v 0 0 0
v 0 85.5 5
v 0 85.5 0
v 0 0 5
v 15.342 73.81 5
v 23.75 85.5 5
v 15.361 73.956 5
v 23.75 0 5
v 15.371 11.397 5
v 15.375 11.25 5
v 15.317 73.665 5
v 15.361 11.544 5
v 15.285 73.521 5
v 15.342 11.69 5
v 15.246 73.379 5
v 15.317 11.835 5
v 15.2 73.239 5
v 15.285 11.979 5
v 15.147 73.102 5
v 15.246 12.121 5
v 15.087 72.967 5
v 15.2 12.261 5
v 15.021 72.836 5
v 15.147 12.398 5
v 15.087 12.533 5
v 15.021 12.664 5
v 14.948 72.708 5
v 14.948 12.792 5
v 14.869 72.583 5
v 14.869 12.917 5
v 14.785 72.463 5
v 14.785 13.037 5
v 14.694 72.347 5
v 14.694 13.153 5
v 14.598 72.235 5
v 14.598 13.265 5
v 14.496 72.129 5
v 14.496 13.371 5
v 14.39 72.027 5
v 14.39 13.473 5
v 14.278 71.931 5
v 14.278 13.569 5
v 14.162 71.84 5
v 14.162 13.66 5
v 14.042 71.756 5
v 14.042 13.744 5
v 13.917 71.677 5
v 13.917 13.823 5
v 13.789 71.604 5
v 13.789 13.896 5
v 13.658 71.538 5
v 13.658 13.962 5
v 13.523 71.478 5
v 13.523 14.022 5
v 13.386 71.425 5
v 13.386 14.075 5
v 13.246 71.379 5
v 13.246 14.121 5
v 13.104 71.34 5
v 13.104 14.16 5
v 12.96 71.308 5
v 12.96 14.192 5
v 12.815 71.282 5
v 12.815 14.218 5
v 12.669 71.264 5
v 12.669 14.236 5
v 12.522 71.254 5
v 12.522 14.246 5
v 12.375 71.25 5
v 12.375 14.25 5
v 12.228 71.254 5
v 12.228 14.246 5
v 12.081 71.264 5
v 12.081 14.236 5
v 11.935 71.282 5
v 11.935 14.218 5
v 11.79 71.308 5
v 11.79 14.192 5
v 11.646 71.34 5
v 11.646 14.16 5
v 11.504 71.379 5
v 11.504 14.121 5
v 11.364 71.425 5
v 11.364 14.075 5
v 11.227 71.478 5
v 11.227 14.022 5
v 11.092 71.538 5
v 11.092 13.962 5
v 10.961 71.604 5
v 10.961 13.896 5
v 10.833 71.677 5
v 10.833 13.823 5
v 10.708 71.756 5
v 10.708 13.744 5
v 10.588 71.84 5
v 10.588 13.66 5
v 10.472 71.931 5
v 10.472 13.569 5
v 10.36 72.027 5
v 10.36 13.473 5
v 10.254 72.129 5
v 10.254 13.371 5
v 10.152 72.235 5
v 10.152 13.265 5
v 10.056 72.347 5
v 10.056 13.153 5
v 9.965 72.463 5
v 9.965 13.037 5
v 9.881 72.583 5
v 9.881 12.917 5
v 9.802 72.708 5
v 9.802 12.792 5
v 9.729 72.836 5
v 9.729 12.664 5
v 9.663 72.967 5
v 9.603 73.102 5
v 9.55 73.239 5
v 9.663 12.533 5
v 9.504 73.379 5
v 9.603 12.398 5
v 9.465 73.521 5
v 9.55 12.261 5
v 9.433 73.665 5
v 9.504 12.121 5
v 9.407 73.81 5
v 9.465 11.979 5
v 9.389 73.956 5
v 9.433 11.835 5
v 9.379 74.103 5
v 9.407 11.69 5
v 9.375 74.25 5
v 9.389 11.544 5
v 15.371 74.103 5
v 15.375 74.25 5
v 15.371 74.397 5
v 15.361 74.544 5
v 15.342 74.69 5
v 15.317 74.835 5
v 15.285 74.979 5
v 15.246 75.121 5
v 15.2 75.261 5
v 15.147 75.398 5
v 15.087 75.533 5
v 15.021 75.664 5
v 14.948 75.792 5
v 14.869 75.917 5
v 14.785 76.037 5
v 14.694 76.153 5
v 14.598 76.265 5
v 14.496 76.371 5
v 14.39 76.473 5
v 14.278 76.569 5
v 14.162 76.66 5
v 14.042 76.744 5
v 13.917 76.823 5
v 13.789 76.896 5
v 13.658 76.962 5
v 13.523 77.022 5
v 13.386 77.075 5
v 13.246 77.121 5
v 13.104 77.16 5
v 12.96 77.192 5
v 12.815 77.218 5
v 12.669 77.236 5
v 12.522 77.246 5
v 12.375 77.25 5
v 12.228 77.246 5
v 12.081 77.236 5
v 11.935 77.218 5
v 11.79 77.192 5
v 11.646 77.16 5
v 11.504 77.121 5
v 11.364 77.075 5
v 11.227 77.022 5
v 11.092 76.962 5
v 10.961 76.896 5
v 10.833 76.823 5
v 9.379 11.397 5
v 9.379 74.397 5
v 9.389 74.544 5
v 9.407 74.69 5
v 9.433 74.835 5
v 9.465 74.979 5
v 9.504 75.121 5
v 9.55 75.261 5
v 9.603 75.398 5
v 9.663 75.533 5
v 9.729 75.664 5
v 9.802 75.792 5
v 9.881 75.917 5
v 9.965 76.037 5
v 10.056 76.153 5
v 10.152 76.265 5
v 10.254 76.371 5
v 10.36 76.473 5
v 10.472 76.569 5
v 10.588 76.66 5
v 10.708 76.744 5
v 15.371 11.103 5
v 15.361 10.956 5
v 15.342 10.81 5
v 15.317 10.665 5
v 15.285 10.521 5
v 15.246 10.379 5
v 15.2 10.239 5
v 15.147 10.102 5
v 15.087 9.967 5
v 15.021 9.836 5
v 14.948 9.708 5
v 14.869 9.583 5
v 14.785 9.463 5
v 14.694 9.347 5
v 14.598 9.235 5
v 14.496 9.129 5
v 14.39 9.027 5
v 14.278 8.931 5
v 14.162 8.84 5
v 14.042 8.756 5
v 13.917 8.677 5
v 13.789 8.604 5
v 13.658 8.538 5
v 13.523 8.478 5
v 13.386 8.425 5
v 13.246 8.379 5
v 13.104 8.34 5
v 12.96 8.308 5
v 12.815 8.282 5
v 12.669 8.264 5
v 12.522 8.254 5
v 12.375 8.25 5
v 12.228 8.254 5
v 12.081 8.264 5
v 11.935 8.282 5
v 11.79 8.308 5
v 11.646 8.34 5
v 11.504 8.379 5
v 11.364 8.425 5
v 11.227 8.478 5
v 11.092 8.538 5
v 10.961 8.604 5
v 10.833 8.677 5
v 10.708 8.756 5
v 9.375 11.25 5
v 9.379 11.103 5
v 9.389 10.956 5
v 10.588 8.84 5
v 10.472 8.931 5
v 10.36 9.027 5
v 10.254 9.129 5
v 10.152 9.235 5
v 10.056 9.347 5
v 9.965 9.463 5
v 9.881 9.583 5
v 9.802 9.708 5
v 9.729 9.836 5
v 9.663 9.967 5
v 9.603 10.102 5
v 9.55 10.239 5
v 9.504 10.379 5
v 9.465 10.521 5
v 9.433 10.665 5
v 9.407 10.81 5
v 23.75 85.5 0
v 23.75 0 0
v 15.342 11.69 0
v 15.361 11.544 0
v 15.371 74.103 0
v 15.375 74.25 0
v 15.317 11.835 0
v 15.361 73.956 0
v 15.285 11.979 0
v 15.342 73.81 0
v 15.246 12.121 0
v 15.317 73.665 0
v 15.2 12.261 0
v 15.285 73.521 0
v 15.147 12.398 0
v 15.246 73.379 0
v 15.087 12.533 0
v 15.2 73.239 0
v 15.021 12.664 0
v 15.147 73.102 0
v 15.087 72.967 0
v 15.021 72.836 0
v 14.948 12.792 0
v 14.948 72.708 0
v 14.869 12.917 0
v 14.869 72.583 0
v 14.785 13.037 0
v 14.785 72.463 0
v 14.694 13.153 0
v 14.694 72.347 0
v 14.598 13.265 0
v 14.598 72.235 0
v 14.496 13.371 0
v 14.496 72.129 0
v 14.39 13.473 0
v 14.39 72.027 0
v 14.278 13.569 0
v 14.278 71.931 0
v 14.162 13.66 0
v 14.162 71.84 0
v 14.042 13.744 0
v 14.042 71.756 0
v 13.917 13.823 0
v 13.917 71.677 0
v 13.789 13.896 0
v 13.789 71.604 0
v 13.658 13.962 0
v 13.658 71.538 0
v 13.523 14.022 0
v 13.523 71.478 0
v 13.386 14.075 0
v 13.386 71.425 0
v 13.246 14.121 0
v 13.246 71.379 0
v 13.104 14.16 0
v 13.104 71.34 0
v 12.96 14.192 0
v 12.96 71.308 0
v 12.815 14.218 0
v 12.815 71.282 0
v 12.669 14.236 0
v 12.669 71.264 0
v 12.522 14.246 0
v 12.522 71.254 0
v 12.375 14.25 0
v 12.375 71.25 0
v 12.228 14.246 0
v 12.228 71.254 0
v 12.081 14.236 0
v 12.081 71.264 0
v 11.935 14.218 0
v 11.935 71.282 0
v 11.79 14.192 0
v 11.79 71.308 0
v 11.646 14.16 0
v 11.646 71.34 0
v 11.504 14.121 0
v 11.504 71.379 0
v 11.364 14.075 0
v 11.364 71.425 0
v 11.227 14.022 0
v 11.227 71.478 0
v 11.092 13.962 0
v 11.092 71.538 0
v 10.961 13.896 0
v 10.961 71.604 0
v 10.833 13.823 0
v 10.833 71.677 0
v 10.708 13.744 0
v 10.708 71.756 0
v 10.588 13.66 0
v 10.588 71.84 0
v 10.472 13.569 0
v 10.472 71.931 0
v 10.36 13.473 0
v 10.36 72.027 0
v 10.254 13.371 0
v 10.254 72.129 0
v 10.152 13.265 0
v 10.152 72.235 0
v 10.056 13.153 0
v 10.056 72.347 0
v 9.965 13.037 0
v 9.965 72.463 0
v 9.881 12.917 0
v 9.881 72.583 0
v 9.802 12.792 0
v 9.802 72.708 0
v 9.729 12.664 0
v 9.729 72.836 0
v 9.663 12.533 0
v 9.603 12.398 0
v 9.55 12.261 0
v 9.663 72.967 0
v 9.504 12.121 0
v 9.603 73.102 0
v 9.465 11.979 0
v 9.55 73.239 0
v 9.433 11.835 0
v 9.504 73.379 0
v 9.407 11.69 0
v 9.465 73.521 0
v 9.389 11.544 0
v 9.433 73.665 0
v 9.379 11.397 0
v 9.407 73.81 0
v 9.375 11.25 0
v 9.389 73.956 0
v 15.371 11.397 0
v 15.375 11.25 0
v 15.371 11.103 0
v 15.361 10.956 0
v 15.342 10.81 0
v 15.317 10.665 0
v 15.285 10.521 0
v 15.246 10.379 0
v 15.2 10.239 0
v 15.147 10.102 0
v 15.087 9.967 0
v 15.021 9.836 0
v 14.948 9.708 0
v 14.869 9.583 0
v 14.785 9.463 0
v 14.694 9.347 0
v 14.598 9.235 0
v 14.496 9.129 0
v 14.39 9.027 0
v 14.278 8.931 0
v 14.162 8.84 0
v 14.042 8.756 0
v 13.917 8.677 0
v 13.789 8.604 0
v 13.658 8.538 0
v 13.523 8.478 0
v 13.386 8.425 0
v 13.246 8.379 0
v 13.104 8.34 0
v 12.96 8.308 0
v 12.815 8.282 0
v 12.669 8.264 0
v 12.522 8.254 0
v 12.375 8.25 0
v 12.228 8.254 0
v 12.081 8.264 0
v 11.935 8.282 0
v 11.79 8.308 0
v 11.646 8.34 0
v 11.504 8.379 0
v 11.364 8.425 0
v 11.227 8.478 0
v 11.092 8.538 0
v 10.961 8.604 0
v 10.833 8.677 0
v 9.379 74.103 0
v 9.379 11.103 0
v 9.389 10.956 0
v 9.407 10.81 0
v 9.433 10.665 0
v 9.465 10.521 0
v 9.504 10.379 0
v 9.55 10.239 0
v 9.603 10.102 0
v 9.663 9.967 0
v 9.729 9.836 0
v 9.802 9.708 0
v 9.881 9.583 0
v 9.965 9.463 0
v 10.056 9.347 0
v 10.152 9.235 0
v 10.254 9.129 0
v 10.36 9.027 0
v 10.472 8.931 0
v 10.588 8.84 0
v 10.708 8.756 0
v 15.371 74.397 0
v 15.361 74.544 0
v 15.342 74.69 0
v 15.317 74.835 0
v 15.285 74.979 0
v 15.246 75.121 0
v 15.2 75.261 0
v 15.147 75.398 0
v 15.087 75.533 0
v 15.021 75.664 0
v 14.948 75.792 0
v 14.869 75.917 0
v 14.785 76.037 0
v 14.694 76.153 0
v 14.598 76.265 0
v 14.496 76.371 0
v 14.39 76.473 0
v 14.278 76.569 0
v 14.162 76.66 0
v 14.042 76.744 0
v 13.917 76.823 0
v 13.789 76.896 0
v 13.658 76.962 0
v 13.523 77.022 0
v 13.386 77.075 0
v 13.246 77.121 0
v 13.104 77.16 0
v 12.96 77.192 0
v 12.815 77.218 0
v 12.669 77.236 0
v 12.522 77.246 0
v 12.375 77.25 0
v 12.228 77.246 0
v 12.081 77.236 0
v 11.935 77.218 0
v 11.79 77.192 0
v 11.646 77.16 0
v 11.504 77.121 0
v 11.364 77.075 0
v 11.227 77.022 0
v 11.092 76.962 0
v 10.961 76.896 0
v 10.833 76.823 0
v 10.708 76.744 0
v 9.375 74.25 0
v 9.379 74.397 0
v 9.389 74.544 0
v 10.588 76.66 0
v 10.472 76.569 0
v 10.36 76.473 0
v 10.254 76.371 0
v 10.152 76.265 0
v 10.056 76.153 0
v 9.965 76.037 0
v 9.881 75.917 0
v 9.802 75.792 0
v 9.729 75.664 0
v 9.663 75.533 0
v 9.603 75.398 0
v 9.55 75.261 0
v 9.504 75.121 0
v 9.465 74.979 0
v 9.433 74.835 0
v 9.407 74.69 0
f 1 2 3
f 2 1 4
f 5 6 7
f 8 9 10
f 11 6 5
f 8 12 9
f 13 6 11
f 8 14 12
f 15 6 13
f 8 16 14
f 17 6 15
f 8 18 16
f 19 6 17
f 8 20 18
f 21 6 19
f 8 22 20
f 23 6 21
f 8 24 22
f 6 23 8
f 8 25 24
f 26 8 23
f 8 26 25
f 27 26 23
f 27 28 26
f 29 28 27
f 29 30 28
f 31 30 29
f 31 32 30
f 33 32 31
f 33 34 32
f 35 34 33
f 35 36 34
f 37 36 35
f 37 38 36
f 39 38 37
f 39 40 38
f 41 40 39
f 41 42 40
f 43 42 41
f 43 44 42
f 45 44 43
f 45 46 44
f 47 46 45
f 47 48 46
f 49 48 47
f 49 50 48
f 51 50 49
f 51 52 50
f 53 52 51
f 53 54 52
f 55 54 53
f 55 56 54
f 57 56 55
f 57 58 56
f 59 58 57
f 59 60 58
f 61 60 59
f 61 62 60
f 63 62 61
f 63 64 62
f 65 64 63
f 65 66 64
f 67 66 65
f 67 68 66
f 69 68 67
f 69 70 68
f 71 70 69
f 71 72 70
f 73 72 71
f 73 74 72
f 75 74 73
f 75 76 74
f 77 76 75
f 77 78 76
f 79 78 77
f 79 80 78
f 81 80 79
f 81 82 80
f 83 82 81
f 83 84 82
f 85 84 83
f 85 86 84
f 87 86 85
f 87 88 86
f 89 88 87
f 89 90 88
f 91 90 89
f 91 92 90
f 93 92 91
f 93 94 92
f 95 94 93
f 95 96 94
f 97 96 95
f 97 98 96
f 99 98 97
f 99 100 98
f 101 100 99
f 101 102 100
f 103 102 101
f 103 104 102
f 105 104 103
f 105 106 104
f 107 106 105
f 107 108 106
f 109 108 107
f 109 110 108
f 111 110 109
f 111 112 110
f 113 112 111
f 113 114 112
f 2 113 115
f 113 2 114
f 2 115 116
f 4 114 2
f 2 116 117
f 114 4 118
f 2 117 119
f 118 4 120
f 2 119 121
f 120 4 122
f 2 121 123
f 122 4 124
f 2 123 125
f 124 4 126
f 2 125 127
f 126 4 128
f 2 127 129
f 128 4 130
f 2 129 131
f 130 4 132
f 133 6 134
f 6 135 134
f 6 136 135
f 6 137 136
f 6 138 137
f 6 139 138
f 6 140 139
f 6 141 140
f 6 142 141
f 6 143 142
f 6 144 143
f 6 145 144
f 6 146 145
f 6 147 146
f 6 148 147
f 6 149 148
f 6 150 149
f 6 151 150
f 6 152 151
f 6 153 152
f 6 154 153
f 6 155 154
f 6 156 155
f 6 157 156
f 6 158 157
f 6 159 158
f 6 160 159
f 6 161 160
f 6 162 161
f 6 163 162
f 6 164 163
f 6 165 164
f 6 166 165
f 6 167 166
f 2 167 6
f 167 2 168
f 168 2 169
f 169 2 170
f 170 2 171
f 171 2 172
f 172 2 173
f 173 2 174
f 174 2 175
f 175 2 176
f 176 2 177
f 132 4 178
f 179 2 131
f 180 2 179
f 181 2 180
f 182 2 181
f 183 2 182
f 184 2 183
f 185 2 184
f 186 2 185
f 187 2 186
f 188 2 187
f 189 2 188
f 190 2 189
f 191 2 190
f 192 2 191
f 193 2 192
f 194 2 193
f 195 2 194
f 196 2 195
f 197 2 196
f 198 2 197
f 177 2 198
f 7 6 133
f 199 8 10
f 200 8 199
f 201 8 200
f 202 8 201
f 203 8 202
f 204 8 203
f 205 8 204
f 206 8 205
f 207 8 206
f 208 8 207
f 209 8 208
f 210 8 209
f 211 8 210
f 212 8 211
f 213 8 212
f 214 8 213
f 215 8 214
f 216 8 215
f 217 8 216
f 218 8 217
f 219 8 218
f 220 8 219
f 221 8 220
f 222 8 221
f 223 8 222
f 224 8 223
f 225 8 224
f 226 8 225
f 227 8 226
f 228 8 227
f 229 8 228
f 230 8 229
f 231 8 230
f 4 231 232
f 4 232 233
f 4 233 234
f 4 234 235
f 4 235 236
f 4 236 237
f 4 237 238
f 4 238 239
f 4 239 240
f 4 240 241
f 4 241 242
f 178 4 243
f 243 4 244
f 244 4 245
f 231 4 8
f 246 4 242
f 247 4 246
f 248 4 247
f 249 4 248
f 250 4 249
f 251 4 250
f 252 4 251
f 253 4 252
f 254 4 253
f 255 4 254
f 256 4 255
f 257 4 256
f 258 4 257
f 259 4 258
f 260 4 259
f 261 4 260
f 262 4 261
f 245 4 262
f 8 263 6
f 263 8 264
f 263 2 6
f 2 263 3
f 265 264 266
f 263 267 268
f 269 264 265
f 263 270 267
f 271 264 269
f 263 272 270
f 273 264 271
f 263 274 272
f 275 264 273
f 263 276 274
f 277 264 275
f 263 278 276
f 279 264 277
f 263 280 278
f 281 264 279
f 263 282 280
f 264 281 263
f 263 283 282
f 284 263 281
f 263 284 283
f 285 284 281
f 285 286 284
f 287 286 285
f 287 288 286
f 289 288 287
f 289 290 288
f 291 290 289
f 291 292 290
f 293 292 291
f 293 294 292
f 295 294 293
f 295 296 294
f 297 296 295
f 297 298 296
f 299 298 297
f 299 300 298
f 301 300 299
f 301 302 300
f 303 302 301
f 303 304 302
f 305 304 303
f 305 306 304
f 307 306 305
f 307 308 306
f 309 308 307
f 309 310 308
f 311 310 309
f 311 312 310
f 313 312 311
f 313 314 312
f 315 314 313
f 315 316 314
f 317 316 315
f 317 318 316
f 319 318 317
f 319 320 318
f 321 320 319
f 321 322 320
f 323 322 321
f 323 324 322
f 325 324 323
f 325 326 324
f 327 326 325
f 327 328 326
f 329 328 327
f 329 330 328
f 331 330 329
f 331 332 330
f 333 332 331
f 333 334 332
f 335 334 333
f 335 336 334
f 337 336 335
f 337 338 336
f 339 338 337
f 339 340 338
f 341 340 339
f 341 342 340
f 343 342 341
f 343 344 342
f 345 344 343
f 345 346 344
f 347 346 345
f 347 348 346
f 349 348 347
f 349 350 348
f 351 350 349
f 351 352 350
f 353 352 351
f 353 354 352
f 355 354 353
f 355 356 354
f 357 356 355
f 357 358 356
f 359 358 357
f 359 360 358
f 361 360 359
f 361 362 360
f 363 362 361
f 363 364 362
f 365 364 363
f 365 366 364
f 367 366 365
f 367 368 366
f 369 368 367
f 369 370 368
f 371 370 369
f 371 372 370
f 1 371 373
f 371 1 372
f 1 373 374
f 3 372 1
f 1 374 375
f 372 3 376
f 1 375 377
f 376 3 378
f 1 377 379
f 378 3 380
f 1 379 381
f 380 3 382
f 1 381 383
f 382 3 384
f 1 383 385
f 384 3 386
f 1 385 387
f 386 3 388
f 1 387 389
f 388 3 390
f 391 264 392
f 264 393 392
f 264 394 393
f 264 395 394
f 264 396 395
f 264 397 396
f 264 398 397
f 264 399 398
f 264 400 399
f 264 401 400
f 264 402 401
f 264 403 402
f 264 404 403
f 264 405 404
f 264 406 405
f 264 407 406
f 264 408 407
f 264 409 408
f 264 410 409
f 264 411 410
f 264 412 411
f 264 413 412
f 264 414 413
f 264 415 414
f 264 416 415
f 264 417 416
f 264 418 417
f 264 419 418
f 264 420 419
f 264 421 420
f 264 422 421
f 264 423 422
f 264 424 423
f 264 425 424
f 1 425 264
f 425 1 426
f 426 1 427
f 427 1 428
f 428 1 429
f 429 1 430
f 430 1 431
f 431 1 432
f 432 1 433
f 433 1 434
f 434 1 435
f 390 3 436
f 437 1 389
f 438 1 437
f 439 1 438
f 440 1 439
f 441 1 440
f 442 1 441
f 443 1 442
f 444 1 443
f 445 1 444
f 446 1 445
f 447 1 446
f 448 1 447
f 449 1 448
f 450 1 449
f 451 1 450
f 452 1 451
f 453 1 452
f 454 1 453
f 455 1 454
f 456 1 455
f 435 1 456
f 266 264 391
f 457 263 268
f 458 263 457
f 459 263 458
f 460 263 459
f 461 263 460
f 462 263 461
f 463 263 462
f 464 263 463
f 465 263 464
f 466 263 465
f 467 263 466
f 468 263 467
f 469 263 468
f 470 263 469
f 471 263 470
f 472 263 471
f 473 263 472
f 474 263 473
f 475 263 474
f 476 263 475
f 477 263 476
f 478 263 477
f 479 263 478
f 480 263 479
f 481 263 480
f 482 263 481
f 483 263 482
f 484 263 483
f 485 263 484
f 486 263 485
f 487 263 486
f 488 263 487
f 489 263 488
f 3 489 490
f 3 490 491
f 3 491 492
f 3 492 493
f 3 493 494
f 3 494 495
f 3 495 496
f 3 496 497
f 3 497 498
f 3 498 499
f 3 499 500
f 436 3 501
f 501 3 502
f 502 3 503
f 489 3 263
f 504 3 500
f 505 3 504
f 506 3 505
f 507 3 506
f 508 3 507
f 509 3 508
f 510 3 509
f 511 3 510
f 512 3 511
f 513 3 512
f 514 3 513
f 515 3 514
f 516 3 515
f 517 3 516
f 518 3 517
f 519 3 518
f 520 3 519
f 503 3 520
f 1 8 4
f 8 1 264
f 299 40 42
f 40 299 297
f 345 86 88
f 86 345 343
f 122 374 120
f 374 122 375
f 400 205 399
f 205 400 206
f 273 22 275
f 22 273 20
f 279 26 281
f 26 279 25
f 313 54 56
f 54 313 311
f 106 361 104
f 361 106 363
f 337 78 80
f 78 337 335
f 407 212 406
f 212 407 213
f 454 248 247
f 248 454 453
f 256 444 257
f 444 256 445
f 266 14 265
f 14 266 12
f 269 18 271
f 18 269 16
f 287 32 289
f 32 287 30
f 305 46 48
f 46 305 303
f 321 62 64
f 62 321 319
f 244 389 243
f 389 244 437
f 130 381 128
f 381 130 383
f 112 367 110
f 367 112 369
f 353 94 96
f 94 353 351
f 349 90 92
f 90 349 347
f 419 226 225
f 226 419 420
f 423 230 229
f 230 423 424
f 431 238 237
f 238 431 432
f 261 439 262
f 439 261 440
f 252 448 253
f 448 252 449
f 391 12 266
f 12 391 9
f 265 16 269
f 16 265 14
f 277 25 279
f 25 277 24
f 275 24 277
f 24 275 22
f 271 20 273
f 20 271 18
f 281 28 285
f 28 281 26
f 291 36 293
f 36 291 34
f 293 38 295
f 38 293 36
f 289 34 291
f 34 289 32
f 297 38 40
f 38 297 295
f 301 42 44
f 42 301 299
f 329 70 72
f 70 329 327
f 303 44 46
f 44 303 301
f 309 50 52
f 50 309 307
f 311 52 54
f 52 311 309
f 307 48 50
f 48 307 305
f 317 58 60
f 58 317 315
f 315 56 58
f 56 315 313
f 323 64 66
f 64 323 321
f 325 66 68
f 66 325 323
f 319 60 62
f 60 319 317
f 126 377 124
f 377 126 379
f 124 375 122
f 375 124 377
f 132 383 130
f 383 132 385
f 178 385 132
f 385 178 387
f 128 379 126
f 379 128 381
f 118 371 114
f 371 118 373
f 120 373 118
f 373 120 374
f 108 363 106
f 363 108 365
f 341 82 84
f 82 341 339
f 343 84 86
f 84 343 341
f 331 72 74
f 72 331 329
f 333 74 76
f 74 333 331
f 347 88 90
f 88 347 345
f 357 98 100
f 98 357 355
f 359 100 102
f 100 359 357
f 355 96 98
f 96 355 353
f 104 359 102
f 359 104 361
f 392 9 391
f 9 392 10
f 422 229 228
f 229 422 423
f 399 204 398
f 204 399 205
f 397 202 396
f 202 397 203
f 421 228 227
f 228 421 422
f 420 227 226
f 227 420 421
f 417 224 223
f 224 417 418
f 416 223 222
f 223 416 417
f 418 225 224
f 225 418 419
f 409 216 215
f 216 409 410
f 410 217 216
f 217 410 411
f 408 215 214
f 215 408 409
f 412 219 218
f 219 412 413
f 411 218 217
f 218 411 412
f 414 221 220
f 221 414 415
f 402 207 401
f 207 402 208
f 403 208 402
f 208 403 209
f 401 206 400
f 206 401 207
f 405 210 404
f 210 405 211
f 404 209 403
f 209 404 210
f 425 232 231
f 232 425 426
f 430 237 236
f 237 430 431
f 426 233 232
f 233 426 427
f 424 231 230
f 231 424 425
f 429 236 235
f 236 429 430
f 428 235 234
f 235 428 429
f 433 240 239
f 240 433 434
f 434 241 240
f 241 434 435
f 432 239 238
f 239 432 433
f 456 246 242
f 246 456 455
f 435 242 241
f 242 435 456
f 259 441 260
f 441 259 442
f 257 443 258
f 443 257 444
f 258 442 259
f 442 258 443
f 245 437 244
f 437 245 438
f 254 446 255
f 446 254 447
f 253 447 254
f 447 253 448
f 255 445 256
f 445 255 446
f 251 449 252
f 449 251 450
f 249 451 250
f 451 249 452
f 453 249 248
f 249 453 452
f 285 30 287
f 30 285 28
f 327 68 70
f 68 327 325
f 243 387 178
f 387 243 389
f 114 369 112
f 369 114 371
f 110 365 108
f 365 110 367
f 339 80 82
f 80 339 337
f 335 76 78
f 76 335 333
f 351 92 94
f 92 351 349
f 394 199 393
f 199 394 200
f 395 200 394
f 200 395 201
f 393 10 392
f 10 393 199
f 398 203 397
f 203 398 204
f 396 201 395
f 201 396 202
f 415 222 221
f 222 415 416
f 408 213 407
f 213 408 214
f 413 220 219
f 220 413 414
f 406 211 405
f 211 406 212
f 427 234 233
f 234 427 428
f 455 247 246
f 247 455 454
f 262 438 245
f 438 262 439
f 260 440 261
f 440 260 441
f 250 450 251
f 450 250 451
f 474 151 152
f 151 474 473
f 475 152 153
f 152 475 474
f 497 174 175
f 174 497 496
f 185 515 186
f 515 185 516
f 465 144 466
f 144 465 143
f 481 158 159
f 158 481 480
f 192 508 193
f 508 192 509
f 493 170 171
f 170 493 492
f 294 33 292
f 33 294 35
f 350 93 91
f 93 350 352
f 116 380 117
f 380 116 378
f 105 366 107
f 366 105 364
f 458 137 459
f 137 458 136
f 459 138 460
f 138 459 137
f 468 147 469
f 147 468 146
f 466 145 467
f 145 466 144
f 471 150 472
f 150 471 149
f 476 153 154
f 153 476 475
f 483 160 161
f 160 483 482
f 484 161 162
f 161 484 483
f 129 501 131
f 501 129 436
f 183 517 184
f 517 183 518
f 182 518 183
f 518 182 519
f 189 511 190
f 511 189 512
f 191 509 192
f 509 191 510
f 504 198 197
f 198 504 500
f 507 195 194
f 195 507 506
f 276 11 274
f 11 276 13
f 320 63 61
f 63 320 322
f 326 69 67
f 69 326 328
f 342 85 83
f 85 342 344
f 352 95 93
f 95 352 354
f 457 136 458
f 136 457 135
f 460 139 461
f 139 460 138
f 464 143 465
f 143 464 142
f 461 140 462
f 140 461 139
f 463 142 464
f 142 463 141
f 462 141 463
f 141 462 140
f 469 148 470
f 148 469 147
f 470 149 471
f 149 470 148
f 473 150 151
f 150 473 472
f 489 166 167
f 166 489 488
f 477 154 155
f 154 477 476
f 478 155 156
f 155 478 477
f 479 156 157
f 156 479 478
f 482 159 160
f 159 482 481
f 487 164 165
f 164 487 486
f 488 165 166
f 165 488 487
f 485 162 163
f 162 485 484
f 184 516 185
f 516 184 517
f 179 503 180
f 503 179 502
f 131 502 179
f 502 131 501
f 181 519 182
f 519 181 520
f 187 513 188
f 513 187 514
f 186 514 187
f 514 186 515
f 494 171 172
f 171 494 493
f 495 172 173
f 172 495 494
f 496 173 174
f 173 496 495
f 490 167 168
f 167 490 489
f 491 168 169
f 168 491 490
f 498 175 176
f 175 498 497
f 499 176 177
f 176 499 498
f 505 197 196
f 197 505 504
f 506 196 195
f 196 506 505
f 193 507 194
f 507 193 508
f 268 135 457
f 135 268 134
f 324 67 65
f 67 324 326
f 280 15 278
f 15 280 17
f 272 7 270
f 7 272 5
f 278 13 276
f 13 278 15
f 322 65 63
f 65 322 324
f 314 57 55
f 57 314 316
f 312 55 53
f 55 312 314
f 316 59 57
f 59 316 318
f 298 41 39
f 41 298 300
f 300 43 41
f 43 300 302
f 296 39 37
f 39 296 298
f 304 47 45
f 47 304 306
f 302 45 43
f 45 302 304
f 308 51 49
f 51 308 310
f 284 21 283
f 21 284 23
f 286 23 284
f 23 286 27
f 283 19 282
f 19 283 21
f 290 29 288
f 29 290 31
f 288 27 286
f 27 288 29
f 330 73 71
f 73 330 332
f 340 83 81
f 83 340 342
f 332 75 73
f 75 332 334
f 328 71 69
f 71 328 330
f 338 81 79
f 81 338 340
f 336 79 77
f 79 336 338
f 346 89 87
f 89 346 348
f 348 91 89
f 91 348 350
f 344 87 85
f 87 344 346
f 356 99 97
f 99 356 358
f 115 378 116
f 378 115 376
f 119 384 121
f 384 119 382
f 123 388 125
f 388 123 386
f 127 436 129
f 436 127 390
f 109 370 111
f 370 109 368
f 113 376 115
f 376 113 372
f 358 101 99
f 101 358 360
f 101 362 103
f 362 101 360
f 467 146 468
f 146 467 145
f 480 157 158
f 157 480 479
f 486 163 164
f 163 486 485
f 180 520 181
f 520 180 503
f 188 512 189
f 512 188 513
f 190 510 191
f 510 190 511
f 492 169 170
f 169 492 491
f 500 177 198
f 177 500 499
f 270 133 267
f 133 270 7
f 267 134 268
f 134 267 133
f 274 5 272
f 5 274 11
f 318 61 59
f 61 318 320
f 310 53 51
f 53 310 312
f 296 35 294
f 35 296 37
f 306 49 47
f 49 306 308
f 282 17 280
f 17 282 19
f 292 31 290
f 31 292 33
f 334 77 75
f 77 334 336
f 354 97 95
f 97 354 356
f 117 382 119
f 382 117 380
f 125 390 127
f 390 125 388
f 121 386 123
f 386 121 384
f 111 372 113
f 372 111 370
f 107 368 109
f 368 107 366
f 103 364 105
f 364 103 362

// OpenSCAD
// Troublemaker v2: Vibration Mount
// https://github.com/macropin/troublemaker

pad = 0.001;
$fn = 128;
fudge = 0.4; // extra space tolerance

w = 23.75;
l = 85.5;
t = 5;

difference() {
    color("red") cube([w,l,t]);

    translate([w/2+0.5,11.25,0])
        color("green") cylinder(d=6,h=100, center=true);

    translate([w/2+0.5,l-11.25,0])
        color("green") cylinder(d=6,h=100, center=true);
        
}
